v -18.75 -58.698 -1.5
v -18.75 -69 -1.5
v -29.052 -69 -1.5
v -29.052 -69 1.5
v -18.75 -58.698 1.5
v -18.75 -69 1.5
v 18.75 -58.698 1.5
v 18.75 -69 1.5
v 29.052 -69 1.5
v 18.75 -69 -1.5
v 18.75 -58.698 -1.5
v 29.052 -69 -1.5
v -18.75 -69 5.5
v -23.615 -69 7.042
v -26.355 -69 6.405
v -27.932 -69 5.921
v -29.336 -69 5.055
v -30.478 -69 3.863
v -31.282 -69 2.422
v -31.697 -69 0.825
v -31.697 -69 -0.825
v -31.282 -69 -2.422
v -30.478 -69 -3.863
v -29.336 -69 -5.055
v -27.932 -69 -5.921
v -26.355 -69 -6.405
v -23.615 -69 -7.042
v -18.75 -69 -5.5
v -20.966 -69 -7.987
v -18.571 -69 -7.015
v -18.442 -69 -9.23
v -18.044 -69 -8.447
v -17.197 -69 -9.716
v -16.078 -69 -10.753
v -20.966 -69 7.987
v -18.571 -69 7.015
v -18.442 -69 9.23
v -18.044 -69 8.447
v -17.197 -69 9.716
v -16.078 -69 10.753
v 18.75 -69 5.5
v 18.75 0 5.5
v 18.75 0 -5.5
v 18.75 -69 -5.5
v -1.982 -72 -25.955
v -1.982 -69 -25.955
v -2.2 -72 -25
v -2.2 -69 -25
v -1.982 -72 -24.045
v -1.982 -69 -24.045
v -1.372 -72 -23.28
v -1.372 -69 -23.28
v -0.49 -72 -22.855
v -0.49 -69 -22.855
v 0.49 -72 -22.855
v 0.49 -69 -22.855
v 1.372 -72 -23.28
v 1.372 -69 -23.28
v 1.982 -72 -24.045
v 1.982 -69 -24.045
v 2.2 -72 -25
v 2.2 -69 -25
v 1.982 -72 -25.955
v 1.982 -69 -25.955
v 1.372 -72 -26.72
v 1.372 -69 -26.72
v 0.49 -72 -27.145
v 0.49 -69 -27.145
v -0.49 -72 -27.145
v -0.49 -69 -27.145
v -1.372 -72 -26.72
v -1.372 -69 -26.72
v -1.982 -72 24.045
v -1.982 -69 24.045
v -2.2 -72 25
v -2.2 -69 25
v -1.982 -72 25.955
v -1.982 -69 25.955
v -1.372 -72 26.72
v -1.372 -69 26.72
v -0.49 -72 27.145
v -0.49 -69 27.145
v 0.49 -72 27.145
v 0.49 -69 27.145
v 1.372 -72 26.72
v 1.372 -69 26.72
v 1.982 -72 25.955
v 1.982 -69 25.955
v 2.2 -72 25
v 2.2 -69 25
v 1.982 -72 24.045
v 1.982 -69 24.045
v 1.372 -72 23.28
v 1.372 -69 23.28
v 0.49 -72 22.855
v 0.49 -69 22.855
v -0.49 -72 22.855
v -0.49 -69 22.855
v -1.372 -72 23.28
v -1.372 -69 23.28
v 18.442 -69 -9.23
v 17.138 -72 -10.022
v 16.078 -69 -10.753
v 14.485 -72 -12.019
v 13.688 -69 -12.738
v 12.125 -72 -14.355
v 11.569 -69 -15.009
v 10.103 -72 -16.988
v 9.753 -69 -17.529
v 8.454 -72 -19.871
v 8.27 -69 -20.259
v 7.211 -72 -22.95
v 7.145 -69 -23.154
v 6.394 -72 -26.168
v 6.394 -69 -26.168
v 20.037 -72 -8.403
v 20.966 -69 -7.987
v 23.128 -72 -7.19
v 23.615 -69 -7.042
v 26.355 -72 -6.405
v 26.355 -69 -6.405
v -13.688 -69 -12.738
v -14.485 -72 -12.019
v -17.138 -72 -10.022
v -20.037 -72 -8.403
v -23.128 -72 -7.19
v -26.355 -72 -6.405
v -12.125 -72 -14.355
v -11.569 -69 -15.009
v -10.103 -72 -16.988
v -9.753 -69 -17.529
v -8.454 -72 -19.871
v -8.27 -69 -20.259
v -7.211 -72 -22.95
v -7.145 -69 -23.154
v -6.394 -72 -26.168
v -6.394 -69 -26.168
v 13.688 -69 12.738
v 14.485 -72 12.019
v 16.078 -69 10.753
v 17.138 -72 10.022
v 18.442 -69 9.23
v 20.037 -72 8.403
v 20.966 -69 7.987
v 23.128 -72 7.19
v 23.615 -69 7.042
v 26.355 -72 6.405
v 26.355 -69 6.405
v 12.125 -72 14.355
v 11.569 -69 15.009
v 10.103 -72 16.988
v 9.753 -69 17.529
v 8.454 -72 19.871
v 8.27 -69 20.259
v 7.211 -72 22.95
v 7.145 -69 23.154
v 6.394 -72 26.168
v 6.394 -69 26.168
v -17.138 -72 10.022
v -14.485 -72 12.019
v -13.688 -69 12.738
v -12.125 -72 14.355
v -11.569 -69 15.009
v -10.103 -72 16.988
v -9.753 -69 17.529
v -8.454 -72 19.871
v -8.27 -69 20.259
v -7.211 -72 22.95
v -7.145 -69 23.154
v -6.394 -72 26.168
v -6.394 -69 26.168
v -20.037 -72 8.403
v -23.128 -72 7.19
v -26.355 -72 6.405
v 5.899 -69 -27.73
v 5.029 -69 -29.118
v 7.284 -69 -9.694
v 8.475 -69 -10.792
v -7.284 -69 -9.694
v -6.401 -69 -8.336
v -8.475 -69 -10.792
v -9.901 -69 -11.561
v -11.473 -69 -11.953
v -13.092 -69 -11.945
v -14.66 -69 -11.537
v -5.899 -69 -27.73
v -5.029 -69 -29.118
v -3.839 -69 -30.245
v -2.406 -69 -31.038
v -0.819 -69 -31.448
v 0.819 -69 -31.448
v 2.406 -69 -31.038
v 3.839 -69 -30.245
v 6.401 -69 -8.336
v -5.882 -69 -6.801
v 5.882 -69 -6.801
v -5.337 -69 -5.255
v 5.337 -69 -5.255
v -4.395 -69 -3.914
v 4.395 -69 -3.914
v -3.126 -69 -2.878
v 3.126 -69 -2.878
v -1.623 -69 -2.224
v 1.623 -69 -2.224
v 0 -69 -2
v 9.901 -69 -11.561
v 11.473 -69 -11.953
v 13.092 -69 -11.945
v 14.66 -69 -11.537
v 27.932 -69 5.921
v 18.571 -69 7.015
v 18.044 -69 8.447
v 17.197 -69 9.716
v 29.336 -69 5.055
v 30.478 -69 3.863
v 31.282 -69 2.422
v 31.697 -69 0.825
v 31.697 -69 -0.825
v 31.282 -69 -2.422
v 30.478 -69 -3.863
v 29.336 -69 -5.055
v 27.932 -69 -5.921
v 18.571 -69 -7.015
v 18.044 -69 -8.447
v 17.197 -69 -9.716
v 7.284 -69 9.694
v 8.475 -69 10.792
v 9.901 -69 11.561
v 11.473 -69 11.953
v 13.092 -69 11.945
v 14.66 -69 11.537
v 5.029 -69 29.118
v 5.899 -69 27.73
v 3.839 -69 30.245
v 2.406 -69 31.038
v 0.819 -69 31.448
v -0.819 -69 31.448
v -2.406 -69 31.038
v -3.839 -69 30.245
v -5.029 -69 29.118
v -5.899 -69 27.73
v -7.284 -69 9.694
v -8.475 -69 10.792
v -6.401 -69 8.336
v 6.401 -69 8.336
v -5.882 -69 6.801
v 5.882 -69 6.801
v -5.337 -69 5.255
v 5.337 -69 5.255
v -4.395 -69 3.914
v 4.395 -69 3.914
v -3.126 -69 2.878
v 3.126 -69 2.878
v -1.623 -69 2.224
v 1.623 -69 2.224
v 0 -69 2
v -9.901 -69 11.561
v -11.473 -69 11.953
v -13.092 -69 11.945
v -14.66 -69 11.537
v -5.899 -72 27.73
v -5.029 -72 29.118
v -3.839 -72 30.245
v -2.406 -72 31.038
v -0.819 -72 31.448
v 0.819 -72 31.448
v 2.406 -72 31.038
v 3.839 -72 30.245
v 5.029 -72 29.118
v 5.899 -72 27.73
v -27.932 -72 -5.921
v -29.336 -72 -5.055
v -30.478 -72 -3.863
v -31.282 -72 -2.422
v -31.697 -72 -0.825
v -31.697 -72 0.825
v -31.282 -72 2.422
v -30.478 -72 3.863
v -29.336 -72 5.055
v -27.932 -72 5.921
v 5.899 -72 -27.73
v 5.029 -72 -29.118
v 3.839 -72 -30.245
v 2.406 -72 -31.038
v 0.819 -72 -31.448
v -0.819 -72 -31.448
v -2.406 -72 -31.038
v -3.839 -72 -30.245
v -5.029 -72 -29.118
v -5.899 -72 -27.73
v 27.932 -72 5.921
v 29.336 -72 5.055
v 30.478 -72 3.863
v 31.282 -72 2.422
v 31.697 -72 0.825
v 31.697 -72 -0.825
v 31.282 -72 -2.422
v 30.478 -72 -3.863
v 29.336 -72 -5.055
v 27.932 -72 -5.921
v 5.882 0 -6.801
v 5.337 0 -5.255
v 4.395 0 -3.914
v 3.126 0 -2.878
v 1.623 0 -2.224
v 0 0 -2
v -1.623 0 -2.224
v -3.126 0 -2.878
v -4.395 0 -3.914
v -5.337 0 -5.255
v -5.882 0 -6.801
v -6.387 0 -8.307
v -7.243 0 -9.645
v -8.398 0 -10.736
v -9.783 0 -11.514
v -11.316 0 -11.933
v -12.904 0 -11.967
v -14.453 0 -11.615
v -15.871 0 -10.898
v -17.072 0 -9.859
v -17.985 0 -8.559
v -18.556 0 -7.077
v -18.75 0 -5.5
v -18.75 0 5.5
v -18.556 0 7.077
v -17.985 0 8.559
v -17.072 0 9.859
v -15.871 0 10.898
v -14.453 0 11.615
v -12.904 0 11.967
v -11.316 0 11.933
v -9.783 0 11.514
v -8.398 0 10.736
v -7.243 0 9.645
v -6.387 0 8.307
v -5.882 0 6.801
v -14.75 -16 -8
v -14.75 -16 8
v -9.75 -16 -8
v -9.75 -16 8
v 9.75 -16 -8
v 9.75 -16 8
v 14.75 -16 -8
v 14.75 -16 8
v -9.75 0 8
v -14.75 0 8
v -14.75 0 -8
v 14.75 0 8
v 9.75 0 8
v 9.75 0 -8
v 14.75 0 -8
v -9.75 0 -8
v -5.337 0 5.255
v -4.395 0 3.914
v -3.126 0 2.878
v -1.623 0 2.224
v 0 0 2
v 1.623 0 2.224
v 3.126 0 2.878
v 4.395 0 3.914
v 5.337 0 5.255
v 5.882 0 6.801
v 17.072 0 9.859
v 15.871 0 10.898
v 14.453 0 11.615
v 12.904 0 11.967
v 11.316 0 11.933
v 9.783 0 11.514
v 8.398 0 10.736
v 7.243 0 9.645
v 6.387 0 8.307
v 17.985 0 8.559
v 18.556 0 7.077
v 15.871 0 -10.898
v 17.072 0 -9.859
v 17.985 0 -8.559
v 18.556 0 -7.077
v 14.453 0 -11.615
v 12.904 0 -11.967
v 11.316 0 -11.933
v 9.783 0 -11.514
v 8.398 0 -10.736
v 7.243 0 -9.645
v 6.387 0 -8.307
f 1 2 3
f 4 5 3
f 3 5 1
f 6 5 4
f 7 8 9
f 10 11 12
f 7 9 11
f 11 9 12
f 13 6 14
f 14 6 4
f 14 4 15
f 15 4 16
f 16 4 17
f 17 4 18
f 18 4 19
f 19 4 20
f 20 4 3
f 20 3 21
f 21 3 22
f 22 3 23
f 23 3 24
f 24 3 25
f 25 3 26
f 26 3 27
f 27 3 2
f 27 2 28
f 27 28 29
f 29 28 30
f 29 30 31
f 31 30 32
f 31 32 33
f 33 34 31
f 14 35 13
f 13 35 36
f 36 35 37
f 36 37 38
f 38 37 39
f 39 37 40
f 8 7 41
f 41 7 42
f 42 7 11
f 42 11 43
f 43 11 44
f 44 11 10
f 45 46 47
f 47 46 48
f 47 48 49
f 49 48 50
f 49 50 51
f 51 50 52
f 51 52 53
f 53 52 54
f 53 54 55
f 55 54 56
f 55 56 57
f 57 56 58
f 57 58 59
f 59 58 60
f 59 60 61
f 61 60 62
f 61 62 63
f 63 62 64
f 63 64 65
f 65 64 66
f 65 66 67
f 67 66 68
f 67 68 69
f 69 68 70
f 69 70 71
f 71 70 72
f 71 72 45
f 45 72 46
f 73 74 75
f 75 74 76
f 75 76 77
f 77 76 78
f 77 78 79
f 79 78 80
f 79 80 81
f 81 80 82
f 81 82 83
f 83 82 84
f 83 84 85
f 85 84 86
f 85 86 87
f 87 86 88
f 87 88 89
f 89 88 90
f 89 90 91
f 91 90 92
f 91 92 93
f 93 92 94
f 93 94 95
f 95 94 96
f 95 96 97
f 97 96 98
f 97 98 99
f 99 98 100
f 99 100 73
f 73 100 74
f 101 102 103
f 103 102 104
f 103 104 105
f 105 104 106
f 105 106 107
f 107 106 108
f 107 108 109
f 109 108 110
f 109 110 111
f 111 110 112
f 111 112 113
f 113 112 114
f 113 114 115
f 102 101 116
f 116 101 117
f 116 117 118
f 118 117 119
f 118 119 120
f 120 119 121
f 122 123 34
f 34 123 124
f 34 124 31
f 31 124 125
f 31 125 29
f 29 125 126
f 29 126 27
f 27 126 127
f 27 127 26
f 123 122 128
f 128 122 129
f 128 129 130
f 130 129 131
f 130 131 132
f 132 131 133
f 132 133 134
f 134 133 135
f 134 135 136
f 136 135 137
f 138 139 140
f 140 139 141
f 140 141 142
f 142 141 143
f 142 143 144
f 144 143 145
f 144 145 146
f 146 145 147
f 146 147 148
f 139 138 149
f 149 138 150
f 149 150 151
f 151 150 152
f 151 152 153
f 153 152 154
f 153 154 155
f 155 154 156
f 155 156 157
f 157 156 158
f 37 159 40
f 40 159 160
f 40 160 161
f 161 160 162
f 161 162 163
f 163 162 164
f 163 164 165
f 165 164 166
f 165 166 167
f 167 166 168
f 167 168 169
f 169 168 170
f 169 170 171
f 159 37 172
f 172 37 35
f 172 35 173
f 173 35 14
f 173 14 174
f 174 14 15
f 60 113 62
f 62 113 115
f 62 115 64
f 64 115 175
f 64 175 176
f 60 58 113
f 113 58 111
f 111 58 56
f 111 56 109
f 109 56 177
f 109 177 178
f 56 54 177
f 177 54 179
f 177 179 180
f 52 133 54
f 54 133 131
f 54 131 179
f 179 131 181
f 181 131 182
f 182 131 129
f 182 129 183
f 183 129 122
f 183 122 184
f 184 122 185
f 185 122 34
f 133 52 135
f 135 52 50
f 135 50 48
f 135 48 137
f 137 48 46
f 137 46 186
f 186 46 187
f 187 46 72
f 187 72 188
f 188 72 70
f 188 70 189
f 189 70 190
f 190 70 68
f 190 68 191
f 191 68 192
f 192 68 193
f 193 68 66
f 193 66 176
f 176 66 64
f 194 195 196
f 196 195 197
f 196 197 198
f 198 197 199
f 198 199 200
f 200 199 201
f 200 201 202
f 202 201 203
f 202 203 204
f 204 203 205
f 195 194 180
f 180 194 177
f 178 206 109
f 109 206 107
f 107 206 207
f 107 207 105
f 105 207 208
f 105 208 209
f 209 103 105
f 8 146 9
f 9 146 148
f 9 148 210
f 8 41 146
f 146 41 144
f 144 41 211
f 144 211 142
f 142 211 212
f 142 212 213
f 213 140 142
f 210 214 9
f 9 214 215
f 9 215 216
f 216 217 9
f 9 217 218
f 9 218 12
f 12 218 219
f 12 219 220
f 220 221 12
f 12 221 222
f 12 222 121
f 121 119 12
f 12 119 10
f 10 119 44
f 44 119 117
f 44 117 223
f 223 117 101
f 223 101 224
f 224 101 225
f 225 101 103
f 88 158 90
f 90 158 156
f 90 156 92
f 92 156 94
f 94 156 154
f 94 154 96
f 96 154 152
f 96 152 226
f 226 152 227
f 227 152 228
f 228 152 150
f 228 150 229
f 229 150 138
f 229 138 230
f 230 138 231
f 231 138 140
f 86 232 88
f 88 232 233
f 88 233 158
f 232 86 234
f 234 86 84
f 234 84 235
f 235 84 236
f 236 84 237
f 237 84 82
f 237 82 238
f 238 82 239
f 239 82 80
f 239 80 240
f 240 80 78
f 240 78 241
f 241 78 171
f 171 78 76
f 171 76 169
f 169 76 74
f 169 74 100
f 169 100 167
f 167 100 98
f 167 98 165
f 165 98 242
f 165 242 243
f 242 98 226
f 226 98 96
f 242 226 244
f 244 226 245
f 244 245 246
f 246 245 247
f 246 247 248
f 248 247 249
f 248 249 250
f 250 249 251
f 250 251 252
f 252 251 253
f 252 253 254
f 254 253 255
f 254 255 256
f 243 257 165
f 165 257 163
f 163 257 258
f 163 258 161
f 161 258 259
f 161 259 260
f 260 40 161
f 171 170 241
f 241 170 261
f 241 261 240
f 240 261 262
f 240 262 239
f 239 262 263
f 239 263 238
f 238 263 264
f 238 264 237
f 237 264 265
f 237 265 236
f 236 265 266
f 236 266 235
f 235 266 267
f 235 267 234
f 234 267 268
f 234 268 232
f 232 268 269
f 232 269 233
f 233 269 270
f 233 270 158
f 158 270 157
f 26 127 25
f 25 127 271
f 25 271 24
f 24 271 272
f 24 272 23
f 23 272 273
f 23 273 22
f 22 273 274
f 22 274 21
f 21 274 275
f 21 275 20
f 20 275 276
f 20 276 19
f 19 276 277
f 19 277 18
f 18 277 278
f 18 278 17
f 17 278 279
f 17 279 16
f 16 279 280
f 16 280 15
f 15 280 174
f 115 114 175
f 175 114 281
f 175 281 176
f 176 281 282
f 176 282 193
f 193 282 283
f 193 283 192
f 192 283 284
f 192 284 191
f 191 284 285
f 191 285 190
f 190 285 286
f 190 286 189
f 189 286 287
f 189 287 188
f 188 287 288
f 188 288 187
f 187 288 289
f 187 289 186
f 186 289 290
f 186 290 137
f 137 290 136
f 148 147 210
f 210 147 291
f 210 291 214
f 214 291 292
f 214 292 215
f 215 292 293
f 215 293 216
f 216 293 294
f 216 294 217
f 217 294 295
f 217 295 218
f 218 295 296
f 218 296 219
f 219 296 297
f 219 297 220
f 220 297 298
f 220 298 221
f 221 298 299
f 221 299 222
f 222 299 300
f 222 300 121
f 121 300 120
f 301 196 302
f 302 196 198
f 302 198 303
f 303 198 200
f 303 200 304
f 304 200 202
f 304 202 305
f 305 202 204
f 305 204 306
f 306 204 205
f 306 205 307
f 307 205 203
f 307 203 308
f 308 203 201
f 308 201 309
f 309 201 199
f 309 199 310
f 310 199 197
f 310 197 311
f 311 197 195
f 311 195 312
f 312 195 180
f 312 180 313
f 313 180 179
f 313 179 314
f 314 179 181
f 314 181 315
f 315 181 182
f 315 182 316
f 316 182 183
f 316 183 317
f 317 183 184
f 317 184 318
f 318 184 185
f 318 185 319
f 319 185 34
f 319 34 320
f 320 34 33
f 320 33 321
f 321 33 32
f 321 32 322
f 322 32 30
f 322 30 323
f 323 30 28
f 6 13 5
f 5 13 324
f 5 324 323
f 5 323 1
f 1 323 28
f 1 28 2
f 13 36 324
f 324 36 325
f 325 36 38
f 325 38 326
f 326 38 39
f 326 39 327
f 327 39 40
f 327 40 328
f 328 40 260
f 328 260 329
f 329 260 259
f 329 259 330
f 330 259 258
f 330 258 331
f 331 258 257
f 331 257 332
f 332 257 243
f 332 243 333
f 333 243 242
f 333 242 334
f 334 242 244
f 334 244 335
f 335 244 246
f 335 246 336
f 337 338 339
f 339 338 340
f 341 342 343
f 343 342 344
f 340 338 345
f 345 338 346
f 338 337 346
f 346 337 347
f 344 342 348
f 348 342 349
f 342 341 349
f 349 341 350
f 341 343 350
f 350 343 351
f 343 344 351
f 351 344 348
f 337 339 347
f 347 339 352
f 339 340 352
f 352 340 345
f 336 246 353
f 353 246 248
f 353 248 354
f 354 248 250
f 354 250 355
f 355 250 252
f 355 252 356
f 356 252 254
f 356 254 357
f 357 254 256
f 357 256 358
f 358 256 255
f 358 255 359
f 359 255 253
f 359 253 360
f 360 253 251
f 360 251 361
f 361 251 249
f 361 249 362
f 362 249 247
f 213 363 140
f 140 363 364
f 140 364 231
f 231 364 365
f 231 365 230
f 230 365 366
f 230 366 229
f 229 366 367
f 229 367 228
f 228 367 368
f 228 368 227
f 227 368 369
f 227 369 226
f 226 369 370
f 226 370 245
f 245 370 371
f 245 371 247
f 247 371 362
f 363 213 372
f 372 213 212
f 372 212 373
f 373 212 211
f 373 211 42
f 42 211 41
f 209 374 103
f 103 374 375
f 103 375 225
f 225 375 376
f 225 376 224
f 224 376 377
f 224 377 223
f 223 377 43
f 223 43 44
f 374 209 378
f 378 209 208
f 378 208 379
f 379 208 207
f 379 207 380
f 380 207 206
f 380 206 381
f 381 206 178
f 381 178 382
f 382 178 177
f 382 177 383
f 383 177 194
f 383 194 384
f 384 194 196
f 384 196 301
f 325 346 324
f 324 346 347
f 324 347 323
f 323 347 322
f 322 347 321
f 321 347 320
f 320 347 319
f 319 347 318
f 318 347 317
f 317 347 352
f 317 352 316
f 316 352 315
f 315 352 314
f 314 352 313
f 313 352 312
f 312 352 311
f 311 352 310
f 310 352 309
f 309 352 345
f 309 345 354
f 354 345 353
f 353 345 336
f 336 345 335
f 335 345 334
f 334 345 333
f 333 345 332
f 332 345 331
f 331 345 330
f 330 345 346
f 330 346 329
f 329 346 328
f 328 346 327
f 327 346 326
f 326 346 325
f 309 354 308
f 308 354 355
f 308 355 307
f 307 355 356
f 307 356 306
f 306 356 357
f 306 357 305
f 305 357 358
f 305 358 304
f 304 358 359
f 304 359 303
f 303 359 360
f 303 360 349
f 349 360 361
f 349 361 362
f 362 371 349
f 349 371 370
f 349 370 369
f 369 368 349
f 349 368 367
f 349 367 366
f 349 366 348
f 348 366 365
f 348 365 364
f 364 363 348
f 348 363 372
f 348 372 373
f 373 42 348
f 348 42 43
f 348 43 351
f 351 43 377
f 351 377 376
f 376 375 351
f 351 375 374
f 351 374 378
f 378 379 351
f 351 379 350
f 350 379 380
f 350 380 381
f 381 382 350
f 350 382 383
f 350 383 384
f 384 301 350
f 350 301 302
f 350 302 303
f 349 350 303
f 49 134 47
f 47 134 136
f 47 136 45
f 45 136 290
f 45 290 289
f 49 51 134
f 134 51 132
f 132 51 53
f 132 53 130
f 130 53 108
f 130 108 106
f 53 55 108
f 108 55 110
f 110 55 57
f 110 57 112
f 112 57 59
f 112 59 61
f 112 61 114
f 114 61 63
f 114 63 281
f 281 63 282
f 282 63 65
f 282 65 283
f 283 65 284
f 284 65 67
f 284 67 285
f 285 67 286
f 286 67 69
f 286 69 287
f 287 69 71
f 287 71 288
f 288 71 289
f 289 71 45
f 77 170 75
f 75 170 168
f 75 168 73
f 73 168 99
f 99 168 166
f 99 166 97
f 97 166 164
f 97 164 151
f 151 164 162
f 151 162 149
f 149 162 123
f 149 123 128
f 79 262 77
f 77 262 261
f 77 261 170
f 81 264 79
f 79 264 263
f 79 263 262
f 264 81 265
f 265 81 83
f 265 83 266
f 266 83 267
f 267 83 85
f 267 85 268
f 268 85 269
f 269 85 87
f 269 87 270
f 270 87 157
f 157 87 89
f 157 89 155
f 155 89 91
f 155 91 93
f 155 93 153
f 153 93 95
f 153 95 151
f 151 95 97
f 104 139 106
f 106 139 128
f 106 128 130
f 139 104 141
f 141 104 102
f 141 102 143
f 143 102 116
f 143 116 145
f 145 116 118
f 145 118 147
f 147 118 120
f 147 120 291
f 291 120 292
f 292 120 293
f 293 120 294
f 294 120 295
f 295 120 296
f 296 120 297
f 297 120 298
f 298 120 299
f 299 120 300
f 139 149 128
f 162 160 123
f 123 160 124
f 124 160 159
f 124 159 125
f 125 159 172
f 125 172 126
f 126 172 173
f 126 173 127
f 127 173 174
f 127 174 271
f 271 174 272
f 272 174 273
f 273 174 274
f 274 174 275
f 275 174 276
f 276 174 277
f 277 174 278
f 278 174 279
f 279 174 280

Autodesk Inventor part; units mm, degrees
ref_plane "YZ Plane" through (0, 0, 0) normal (1, 0, 0) x (0, 1, 0)
ref_plane "XZ Plane" through (0, 0, 0) normal (0, 1, 0) x (-1, 0, 0)
ref_plane "XY Plane" through (0, 0, 0) normal (0, 0, 1) x (1, 0, 0)
sketch "Sketch1" plane through (0, 0, 0) normal (0, 1, 0) x (-1, 0, 0)
  line L0 (14.75, -8) -> (9.75, -8)
  line L1 (9.75, -8) -> (9.75, 8)
  line L2 (9.75, 8) -> (14.75, 8)
  line L3 (14.75, 8) -> (14.75, -8)
  line L4 (-14.75, -8) -> (-9.75, -8)
  line L5 (-9.75, -8) -> (-9.75, 8)
  line L6 (-9.75, 8) -> (-14.75, 8)
  line L7 (-14.75, 8) -> (-14.75, -8)
  line L8 (0, -17.6647) -> (0, 17.6647) projected
  line L9 (27.0734, 0) -> (-27.0734, 0) projected
  line L10 (18.75, -12) -> (-18.75, -12)
  line L11 (-18.75, -12) -> (-18.75, 12)
  line L12 (-18.75, 12) -> (18.75, 12)
  line L13 (18.75, 12) -> (18.75, -12)
  arc A0 (5.8816, -6.8013) -> (18.75, -5.5) centre (12.25, -5.5) ccw
  arc A1 (-18.75, -5.5) -> (-5.8816, -6.8013) centre (-12.25, -5.5) ccw
  arc A2 (5.8816, -6.8013) -> (-5.8816, -6.8013) centre (0, -8.0031) ccw
  arc A3 (18.75, 5.5) -> (5.8816, 6.8013) centre (12.25, 5.5) ccw
  arc A4 (-5.8816, 6.8013) -> (-18.75, 5.5) centre (-12.25, 5.5) ccw
  arc A5 (-5.8816, 6.8013) -> (5.8816, 6.8013) centre (0, 8.0031) ccw
  point P0 (0, 0)
  point P1 (0, -2)
  point P2 (-18.75, 5.5)
  dimension "d0" = 5
  dimension "d1" = 16
  dimension "d2" = 16
  dimension "d3" = 19.5
  dimension "d4" = 37.5
  dimension "d5" = 24
  dimension "d6" = 6.5
  dimension "d7" = 4
  dimension "d8" = 2
extrude "Extrusion1" add sketch "Sketch1" against normal blind 72 contours L3 L9 L13 A0 A2 L8 L1 L0 | L3 L2 L1 L9 L8 A5 A3 L13 | L9 L5 L6 L7 L11 A4 A5 L8 | L8 A2 A1 L11 L9 L7 L4 L5
sketch "Sketch2" plane through (0, -72, 0) normal (0, -1, 0) x (1, 0, 0)
  arc A0 (-5.8816, 6.8013) -> (-18.75, 5.5) centre (-12.25, 5.5) ccw projected
  line L0 (-18.75, 5.5) -> (-18.75, -5.5) projected
  arc A1 (-18.75, -5.5) -> (-5.8816, -6.8013) centre (-12.25, -5.5) ccw projected
  arc A2 (5.8816, -6.8013) -> (-5.8816, -6.8013) centre (0, -8.0031) ccw projected
  arc A3 (5.8816, -6.8013) -> (18.75, -5.5) centre (12.25, -5.5) ccw projected
  line L1 (18.75, -5.5) -> (18.75, 5.5) projected
  arc A4 (18.75, 5.5) -> (5.8816, 6.8013) centre (12.25, 5.5) ccw projected
  arc A5 (-5.8816, 6.8013) -> (5.8816, 6.8013) centre (0, 8.0031) ccw projected
  line L2 (-14.75, -8) -> (-14.75, 8) projected
  line L3 (-14.75, 8) -> (-9.75, 8) projected
  line L4 (-9.75, 8) -> (-9.75, -8) projected
  line L5 (-9.75, -8) -> (-14.75, -8) projected
  line L6 (9.75, -8) -> (9.75, 8) projected
  line L7 (9.75, 8) -> (14.75, 8) projected
  line L8 (14.75, 8) -> (14.75, -8) projected
  line L9 (14.75, -8) -> (9.75, -8) projected
  line L10 (15.9006, 9.0344) -> (8.0535, 9.0344)
  line L11 (8.0535, 9.0344) -> (8.0535, -9.2409)
  line L12 (8.0535, -9.2409) -> (15.9006, -9.2409)
  line L13 (15.9006, -9.2409) -> (15.9006, 9.0344)
  line L14 (-8.673, 9.0344) -> (-16.1071, 9.0344)
  line L15 (-16.1071, 9.0344) -> (-16.1071, -9.2409)
  line L16 (-16.1071, -9.2409) -> (-8.673, -9.2409)
  line L17 (-8.673, -9.2409) -> (-8.673, 9.0344)
  point P0 (0, 0)
extrude "Extrusion2" add sketch "Sketch2" against normal blind 56 contours L2 L3 L4 L5 | L6 L7 L8 L9 | L13 L12 L11 L10 | L17 L16 L15 L14
sketch "Sketch3" plane through (0, -72, 0) normal (0, -1, 0) x (1, 0, 0)
  line L0 (-44.45, 0) -> (44.45, 0) projected
  line L1 (0, -44.3994) -> (0, 45.8962) projected
  arc A0 (-6.3941, -26.1683) -> (6.3941, -26.1683) centre (0, -25) ccw
  circle A1 centre (0, 25) radius 6.5
  arc A2 (-5.8816, 6.8013) -> (-18.75, 5.5) centre (-12.25, 5.5) ccw projected
  line L2 (-18.75, 5.5) -> (-18.75, -5.5) projected
  arc A3 (-18.75, -5.5) -> (-5.8816, -6.8013) centre (-12.25, -5.5) ccw projected
  arc A4 (5.8816, -6.8013) -> (-5.8816, -6.8013) centre (0, -8.0031) ccw projected
  arc A5 (5.8816, -6.8013) -> (18.75, -5.5) centre (12.25, -5.5) ccw projected
  line L3 (18.75, -5.5) -> (18.75, 5.5) projected
  arc A6 (18.75, 5.5) -> (5.8816, 6.8013) centre (12.25, 5.5) ccw projected
  arc A7 (-5.8816, 6.8013) -> (5.8816, 6.8013) centre (0, 8.0031) ccw projected
  arc A8 (26.3546, -6.4055) -> (26.3546, 6.4055) centre (25.25, 0) ccw
  arc A9 (-26.3546, 6.4055) -> (-26.3546, -6.4055) centre (-25.25, 0) ccw
  arc A10 (26.3546, -6.4055) -> (6.3941, -26.1683) centre (30.5229, -30.5769) ccw
  arc A11 (6.3941, 26.1683) -> (26.3546, 6.4055) centre (30.5229, 30.5769) ccw
  arc A12 (-6.3941, -26.1683) -> (-26.3546, -6.4055) centre (-30.5229, -30.5769) ccw
  arc A13 (-26.3546, 6.4055) -> (-6.3941, 26.1683) centre (-30.5229, 30.5769) ccw
  arc A14 (0, 31.5) -> (6.3941, 26.1683) centre (0, 25) ccw
  point P0 (0, 0)
  point P1 (6.3941, 26.1683)
  point P2 (-6.3941, 26.1683)
  dimension "d14" = 13
  dimension "d13" = 13
  dimension "d15" = 13
  dimension "d16" = 50
  dimension "d17" = 50.5
extrude "Extrusion3" add sketch "Sketch3" against normal blind 3
sketch "Sketch4" plane through (0, -69, 0) normal (0, 1, 0) x (1, 0, 0)
  arc A0 (-6.3941, -26.1683) -> (6.3941, -26.1683) centre (0, -25) ccw projected
  point P0 (0, 0)
hole "Hole1" at (0, -69, 25) direction (0, -1, 0) diameter 4.4 end through all
sketch "Sketch5" plane through (0, -69, 0) normal (0, 1, 0) x (1, 0, 0)
  arc A0 (6.3941, 26.1683) -> (-6.3941, 26.1683) centre (0, 25) ccw projected
  point P0 (0, 0)
hole "Hole2" at (0, -69, -25) direction (0, -1, 0) diameter 4.4 end through all
sketch "Sketch6" plane through (0, 0, 0) normal (0, 0, 1) x (1, 0, 0)
  line L0 (31.75, -69) -> (26.3546, -69) projected
  line L1 (16.0779, -69) -> (26.3546, -69) projected
  line L2 (18.75, 0) -> (18.75, -69) projected
  line L3 (31.75, -72) -> (31.75, -69) projected
  line L4 (0, -86.4) -> (0, 14.4) projected
  line L5 (29.0523, -70.5) -> (29.0523, -69)
  line L6 (29.0523, -69) -> (18.75, -58.6977)
  line L7 (29.0523, -69) -> (43.622, -69) construction
  line L8 (18.75, -58.6977) -> (17.25, -58.6977)
  line L9 (17.25, -58.6977) -> (17.25, -70.5)
  line L10 (17.25, -70.5) -> (29.0523, -70.5)
  line L11 (-29.0523, -70.5) -> (-29.0523, -69)
  line L12 (-29.0523, -69) -> (-18.75, -58.6977)
  line L13 (-18.75, -58.6977) -> (-17.25, -58.6977)
  line L14 (-17.25, -58.6977) -> (-17.25, -70.5)
  line L15 (-17.25, -70.5) -> (-29.0523, -70.5)
  point P0 (0, 0)
  dimension "d34" = 135
  dimension "d35" = 1.5
  dimension "d36" = 1.5
extrude "Extrusion4" add sketch "Sketch6" along normal mid plane 3
properties part number "pilar soporte"
